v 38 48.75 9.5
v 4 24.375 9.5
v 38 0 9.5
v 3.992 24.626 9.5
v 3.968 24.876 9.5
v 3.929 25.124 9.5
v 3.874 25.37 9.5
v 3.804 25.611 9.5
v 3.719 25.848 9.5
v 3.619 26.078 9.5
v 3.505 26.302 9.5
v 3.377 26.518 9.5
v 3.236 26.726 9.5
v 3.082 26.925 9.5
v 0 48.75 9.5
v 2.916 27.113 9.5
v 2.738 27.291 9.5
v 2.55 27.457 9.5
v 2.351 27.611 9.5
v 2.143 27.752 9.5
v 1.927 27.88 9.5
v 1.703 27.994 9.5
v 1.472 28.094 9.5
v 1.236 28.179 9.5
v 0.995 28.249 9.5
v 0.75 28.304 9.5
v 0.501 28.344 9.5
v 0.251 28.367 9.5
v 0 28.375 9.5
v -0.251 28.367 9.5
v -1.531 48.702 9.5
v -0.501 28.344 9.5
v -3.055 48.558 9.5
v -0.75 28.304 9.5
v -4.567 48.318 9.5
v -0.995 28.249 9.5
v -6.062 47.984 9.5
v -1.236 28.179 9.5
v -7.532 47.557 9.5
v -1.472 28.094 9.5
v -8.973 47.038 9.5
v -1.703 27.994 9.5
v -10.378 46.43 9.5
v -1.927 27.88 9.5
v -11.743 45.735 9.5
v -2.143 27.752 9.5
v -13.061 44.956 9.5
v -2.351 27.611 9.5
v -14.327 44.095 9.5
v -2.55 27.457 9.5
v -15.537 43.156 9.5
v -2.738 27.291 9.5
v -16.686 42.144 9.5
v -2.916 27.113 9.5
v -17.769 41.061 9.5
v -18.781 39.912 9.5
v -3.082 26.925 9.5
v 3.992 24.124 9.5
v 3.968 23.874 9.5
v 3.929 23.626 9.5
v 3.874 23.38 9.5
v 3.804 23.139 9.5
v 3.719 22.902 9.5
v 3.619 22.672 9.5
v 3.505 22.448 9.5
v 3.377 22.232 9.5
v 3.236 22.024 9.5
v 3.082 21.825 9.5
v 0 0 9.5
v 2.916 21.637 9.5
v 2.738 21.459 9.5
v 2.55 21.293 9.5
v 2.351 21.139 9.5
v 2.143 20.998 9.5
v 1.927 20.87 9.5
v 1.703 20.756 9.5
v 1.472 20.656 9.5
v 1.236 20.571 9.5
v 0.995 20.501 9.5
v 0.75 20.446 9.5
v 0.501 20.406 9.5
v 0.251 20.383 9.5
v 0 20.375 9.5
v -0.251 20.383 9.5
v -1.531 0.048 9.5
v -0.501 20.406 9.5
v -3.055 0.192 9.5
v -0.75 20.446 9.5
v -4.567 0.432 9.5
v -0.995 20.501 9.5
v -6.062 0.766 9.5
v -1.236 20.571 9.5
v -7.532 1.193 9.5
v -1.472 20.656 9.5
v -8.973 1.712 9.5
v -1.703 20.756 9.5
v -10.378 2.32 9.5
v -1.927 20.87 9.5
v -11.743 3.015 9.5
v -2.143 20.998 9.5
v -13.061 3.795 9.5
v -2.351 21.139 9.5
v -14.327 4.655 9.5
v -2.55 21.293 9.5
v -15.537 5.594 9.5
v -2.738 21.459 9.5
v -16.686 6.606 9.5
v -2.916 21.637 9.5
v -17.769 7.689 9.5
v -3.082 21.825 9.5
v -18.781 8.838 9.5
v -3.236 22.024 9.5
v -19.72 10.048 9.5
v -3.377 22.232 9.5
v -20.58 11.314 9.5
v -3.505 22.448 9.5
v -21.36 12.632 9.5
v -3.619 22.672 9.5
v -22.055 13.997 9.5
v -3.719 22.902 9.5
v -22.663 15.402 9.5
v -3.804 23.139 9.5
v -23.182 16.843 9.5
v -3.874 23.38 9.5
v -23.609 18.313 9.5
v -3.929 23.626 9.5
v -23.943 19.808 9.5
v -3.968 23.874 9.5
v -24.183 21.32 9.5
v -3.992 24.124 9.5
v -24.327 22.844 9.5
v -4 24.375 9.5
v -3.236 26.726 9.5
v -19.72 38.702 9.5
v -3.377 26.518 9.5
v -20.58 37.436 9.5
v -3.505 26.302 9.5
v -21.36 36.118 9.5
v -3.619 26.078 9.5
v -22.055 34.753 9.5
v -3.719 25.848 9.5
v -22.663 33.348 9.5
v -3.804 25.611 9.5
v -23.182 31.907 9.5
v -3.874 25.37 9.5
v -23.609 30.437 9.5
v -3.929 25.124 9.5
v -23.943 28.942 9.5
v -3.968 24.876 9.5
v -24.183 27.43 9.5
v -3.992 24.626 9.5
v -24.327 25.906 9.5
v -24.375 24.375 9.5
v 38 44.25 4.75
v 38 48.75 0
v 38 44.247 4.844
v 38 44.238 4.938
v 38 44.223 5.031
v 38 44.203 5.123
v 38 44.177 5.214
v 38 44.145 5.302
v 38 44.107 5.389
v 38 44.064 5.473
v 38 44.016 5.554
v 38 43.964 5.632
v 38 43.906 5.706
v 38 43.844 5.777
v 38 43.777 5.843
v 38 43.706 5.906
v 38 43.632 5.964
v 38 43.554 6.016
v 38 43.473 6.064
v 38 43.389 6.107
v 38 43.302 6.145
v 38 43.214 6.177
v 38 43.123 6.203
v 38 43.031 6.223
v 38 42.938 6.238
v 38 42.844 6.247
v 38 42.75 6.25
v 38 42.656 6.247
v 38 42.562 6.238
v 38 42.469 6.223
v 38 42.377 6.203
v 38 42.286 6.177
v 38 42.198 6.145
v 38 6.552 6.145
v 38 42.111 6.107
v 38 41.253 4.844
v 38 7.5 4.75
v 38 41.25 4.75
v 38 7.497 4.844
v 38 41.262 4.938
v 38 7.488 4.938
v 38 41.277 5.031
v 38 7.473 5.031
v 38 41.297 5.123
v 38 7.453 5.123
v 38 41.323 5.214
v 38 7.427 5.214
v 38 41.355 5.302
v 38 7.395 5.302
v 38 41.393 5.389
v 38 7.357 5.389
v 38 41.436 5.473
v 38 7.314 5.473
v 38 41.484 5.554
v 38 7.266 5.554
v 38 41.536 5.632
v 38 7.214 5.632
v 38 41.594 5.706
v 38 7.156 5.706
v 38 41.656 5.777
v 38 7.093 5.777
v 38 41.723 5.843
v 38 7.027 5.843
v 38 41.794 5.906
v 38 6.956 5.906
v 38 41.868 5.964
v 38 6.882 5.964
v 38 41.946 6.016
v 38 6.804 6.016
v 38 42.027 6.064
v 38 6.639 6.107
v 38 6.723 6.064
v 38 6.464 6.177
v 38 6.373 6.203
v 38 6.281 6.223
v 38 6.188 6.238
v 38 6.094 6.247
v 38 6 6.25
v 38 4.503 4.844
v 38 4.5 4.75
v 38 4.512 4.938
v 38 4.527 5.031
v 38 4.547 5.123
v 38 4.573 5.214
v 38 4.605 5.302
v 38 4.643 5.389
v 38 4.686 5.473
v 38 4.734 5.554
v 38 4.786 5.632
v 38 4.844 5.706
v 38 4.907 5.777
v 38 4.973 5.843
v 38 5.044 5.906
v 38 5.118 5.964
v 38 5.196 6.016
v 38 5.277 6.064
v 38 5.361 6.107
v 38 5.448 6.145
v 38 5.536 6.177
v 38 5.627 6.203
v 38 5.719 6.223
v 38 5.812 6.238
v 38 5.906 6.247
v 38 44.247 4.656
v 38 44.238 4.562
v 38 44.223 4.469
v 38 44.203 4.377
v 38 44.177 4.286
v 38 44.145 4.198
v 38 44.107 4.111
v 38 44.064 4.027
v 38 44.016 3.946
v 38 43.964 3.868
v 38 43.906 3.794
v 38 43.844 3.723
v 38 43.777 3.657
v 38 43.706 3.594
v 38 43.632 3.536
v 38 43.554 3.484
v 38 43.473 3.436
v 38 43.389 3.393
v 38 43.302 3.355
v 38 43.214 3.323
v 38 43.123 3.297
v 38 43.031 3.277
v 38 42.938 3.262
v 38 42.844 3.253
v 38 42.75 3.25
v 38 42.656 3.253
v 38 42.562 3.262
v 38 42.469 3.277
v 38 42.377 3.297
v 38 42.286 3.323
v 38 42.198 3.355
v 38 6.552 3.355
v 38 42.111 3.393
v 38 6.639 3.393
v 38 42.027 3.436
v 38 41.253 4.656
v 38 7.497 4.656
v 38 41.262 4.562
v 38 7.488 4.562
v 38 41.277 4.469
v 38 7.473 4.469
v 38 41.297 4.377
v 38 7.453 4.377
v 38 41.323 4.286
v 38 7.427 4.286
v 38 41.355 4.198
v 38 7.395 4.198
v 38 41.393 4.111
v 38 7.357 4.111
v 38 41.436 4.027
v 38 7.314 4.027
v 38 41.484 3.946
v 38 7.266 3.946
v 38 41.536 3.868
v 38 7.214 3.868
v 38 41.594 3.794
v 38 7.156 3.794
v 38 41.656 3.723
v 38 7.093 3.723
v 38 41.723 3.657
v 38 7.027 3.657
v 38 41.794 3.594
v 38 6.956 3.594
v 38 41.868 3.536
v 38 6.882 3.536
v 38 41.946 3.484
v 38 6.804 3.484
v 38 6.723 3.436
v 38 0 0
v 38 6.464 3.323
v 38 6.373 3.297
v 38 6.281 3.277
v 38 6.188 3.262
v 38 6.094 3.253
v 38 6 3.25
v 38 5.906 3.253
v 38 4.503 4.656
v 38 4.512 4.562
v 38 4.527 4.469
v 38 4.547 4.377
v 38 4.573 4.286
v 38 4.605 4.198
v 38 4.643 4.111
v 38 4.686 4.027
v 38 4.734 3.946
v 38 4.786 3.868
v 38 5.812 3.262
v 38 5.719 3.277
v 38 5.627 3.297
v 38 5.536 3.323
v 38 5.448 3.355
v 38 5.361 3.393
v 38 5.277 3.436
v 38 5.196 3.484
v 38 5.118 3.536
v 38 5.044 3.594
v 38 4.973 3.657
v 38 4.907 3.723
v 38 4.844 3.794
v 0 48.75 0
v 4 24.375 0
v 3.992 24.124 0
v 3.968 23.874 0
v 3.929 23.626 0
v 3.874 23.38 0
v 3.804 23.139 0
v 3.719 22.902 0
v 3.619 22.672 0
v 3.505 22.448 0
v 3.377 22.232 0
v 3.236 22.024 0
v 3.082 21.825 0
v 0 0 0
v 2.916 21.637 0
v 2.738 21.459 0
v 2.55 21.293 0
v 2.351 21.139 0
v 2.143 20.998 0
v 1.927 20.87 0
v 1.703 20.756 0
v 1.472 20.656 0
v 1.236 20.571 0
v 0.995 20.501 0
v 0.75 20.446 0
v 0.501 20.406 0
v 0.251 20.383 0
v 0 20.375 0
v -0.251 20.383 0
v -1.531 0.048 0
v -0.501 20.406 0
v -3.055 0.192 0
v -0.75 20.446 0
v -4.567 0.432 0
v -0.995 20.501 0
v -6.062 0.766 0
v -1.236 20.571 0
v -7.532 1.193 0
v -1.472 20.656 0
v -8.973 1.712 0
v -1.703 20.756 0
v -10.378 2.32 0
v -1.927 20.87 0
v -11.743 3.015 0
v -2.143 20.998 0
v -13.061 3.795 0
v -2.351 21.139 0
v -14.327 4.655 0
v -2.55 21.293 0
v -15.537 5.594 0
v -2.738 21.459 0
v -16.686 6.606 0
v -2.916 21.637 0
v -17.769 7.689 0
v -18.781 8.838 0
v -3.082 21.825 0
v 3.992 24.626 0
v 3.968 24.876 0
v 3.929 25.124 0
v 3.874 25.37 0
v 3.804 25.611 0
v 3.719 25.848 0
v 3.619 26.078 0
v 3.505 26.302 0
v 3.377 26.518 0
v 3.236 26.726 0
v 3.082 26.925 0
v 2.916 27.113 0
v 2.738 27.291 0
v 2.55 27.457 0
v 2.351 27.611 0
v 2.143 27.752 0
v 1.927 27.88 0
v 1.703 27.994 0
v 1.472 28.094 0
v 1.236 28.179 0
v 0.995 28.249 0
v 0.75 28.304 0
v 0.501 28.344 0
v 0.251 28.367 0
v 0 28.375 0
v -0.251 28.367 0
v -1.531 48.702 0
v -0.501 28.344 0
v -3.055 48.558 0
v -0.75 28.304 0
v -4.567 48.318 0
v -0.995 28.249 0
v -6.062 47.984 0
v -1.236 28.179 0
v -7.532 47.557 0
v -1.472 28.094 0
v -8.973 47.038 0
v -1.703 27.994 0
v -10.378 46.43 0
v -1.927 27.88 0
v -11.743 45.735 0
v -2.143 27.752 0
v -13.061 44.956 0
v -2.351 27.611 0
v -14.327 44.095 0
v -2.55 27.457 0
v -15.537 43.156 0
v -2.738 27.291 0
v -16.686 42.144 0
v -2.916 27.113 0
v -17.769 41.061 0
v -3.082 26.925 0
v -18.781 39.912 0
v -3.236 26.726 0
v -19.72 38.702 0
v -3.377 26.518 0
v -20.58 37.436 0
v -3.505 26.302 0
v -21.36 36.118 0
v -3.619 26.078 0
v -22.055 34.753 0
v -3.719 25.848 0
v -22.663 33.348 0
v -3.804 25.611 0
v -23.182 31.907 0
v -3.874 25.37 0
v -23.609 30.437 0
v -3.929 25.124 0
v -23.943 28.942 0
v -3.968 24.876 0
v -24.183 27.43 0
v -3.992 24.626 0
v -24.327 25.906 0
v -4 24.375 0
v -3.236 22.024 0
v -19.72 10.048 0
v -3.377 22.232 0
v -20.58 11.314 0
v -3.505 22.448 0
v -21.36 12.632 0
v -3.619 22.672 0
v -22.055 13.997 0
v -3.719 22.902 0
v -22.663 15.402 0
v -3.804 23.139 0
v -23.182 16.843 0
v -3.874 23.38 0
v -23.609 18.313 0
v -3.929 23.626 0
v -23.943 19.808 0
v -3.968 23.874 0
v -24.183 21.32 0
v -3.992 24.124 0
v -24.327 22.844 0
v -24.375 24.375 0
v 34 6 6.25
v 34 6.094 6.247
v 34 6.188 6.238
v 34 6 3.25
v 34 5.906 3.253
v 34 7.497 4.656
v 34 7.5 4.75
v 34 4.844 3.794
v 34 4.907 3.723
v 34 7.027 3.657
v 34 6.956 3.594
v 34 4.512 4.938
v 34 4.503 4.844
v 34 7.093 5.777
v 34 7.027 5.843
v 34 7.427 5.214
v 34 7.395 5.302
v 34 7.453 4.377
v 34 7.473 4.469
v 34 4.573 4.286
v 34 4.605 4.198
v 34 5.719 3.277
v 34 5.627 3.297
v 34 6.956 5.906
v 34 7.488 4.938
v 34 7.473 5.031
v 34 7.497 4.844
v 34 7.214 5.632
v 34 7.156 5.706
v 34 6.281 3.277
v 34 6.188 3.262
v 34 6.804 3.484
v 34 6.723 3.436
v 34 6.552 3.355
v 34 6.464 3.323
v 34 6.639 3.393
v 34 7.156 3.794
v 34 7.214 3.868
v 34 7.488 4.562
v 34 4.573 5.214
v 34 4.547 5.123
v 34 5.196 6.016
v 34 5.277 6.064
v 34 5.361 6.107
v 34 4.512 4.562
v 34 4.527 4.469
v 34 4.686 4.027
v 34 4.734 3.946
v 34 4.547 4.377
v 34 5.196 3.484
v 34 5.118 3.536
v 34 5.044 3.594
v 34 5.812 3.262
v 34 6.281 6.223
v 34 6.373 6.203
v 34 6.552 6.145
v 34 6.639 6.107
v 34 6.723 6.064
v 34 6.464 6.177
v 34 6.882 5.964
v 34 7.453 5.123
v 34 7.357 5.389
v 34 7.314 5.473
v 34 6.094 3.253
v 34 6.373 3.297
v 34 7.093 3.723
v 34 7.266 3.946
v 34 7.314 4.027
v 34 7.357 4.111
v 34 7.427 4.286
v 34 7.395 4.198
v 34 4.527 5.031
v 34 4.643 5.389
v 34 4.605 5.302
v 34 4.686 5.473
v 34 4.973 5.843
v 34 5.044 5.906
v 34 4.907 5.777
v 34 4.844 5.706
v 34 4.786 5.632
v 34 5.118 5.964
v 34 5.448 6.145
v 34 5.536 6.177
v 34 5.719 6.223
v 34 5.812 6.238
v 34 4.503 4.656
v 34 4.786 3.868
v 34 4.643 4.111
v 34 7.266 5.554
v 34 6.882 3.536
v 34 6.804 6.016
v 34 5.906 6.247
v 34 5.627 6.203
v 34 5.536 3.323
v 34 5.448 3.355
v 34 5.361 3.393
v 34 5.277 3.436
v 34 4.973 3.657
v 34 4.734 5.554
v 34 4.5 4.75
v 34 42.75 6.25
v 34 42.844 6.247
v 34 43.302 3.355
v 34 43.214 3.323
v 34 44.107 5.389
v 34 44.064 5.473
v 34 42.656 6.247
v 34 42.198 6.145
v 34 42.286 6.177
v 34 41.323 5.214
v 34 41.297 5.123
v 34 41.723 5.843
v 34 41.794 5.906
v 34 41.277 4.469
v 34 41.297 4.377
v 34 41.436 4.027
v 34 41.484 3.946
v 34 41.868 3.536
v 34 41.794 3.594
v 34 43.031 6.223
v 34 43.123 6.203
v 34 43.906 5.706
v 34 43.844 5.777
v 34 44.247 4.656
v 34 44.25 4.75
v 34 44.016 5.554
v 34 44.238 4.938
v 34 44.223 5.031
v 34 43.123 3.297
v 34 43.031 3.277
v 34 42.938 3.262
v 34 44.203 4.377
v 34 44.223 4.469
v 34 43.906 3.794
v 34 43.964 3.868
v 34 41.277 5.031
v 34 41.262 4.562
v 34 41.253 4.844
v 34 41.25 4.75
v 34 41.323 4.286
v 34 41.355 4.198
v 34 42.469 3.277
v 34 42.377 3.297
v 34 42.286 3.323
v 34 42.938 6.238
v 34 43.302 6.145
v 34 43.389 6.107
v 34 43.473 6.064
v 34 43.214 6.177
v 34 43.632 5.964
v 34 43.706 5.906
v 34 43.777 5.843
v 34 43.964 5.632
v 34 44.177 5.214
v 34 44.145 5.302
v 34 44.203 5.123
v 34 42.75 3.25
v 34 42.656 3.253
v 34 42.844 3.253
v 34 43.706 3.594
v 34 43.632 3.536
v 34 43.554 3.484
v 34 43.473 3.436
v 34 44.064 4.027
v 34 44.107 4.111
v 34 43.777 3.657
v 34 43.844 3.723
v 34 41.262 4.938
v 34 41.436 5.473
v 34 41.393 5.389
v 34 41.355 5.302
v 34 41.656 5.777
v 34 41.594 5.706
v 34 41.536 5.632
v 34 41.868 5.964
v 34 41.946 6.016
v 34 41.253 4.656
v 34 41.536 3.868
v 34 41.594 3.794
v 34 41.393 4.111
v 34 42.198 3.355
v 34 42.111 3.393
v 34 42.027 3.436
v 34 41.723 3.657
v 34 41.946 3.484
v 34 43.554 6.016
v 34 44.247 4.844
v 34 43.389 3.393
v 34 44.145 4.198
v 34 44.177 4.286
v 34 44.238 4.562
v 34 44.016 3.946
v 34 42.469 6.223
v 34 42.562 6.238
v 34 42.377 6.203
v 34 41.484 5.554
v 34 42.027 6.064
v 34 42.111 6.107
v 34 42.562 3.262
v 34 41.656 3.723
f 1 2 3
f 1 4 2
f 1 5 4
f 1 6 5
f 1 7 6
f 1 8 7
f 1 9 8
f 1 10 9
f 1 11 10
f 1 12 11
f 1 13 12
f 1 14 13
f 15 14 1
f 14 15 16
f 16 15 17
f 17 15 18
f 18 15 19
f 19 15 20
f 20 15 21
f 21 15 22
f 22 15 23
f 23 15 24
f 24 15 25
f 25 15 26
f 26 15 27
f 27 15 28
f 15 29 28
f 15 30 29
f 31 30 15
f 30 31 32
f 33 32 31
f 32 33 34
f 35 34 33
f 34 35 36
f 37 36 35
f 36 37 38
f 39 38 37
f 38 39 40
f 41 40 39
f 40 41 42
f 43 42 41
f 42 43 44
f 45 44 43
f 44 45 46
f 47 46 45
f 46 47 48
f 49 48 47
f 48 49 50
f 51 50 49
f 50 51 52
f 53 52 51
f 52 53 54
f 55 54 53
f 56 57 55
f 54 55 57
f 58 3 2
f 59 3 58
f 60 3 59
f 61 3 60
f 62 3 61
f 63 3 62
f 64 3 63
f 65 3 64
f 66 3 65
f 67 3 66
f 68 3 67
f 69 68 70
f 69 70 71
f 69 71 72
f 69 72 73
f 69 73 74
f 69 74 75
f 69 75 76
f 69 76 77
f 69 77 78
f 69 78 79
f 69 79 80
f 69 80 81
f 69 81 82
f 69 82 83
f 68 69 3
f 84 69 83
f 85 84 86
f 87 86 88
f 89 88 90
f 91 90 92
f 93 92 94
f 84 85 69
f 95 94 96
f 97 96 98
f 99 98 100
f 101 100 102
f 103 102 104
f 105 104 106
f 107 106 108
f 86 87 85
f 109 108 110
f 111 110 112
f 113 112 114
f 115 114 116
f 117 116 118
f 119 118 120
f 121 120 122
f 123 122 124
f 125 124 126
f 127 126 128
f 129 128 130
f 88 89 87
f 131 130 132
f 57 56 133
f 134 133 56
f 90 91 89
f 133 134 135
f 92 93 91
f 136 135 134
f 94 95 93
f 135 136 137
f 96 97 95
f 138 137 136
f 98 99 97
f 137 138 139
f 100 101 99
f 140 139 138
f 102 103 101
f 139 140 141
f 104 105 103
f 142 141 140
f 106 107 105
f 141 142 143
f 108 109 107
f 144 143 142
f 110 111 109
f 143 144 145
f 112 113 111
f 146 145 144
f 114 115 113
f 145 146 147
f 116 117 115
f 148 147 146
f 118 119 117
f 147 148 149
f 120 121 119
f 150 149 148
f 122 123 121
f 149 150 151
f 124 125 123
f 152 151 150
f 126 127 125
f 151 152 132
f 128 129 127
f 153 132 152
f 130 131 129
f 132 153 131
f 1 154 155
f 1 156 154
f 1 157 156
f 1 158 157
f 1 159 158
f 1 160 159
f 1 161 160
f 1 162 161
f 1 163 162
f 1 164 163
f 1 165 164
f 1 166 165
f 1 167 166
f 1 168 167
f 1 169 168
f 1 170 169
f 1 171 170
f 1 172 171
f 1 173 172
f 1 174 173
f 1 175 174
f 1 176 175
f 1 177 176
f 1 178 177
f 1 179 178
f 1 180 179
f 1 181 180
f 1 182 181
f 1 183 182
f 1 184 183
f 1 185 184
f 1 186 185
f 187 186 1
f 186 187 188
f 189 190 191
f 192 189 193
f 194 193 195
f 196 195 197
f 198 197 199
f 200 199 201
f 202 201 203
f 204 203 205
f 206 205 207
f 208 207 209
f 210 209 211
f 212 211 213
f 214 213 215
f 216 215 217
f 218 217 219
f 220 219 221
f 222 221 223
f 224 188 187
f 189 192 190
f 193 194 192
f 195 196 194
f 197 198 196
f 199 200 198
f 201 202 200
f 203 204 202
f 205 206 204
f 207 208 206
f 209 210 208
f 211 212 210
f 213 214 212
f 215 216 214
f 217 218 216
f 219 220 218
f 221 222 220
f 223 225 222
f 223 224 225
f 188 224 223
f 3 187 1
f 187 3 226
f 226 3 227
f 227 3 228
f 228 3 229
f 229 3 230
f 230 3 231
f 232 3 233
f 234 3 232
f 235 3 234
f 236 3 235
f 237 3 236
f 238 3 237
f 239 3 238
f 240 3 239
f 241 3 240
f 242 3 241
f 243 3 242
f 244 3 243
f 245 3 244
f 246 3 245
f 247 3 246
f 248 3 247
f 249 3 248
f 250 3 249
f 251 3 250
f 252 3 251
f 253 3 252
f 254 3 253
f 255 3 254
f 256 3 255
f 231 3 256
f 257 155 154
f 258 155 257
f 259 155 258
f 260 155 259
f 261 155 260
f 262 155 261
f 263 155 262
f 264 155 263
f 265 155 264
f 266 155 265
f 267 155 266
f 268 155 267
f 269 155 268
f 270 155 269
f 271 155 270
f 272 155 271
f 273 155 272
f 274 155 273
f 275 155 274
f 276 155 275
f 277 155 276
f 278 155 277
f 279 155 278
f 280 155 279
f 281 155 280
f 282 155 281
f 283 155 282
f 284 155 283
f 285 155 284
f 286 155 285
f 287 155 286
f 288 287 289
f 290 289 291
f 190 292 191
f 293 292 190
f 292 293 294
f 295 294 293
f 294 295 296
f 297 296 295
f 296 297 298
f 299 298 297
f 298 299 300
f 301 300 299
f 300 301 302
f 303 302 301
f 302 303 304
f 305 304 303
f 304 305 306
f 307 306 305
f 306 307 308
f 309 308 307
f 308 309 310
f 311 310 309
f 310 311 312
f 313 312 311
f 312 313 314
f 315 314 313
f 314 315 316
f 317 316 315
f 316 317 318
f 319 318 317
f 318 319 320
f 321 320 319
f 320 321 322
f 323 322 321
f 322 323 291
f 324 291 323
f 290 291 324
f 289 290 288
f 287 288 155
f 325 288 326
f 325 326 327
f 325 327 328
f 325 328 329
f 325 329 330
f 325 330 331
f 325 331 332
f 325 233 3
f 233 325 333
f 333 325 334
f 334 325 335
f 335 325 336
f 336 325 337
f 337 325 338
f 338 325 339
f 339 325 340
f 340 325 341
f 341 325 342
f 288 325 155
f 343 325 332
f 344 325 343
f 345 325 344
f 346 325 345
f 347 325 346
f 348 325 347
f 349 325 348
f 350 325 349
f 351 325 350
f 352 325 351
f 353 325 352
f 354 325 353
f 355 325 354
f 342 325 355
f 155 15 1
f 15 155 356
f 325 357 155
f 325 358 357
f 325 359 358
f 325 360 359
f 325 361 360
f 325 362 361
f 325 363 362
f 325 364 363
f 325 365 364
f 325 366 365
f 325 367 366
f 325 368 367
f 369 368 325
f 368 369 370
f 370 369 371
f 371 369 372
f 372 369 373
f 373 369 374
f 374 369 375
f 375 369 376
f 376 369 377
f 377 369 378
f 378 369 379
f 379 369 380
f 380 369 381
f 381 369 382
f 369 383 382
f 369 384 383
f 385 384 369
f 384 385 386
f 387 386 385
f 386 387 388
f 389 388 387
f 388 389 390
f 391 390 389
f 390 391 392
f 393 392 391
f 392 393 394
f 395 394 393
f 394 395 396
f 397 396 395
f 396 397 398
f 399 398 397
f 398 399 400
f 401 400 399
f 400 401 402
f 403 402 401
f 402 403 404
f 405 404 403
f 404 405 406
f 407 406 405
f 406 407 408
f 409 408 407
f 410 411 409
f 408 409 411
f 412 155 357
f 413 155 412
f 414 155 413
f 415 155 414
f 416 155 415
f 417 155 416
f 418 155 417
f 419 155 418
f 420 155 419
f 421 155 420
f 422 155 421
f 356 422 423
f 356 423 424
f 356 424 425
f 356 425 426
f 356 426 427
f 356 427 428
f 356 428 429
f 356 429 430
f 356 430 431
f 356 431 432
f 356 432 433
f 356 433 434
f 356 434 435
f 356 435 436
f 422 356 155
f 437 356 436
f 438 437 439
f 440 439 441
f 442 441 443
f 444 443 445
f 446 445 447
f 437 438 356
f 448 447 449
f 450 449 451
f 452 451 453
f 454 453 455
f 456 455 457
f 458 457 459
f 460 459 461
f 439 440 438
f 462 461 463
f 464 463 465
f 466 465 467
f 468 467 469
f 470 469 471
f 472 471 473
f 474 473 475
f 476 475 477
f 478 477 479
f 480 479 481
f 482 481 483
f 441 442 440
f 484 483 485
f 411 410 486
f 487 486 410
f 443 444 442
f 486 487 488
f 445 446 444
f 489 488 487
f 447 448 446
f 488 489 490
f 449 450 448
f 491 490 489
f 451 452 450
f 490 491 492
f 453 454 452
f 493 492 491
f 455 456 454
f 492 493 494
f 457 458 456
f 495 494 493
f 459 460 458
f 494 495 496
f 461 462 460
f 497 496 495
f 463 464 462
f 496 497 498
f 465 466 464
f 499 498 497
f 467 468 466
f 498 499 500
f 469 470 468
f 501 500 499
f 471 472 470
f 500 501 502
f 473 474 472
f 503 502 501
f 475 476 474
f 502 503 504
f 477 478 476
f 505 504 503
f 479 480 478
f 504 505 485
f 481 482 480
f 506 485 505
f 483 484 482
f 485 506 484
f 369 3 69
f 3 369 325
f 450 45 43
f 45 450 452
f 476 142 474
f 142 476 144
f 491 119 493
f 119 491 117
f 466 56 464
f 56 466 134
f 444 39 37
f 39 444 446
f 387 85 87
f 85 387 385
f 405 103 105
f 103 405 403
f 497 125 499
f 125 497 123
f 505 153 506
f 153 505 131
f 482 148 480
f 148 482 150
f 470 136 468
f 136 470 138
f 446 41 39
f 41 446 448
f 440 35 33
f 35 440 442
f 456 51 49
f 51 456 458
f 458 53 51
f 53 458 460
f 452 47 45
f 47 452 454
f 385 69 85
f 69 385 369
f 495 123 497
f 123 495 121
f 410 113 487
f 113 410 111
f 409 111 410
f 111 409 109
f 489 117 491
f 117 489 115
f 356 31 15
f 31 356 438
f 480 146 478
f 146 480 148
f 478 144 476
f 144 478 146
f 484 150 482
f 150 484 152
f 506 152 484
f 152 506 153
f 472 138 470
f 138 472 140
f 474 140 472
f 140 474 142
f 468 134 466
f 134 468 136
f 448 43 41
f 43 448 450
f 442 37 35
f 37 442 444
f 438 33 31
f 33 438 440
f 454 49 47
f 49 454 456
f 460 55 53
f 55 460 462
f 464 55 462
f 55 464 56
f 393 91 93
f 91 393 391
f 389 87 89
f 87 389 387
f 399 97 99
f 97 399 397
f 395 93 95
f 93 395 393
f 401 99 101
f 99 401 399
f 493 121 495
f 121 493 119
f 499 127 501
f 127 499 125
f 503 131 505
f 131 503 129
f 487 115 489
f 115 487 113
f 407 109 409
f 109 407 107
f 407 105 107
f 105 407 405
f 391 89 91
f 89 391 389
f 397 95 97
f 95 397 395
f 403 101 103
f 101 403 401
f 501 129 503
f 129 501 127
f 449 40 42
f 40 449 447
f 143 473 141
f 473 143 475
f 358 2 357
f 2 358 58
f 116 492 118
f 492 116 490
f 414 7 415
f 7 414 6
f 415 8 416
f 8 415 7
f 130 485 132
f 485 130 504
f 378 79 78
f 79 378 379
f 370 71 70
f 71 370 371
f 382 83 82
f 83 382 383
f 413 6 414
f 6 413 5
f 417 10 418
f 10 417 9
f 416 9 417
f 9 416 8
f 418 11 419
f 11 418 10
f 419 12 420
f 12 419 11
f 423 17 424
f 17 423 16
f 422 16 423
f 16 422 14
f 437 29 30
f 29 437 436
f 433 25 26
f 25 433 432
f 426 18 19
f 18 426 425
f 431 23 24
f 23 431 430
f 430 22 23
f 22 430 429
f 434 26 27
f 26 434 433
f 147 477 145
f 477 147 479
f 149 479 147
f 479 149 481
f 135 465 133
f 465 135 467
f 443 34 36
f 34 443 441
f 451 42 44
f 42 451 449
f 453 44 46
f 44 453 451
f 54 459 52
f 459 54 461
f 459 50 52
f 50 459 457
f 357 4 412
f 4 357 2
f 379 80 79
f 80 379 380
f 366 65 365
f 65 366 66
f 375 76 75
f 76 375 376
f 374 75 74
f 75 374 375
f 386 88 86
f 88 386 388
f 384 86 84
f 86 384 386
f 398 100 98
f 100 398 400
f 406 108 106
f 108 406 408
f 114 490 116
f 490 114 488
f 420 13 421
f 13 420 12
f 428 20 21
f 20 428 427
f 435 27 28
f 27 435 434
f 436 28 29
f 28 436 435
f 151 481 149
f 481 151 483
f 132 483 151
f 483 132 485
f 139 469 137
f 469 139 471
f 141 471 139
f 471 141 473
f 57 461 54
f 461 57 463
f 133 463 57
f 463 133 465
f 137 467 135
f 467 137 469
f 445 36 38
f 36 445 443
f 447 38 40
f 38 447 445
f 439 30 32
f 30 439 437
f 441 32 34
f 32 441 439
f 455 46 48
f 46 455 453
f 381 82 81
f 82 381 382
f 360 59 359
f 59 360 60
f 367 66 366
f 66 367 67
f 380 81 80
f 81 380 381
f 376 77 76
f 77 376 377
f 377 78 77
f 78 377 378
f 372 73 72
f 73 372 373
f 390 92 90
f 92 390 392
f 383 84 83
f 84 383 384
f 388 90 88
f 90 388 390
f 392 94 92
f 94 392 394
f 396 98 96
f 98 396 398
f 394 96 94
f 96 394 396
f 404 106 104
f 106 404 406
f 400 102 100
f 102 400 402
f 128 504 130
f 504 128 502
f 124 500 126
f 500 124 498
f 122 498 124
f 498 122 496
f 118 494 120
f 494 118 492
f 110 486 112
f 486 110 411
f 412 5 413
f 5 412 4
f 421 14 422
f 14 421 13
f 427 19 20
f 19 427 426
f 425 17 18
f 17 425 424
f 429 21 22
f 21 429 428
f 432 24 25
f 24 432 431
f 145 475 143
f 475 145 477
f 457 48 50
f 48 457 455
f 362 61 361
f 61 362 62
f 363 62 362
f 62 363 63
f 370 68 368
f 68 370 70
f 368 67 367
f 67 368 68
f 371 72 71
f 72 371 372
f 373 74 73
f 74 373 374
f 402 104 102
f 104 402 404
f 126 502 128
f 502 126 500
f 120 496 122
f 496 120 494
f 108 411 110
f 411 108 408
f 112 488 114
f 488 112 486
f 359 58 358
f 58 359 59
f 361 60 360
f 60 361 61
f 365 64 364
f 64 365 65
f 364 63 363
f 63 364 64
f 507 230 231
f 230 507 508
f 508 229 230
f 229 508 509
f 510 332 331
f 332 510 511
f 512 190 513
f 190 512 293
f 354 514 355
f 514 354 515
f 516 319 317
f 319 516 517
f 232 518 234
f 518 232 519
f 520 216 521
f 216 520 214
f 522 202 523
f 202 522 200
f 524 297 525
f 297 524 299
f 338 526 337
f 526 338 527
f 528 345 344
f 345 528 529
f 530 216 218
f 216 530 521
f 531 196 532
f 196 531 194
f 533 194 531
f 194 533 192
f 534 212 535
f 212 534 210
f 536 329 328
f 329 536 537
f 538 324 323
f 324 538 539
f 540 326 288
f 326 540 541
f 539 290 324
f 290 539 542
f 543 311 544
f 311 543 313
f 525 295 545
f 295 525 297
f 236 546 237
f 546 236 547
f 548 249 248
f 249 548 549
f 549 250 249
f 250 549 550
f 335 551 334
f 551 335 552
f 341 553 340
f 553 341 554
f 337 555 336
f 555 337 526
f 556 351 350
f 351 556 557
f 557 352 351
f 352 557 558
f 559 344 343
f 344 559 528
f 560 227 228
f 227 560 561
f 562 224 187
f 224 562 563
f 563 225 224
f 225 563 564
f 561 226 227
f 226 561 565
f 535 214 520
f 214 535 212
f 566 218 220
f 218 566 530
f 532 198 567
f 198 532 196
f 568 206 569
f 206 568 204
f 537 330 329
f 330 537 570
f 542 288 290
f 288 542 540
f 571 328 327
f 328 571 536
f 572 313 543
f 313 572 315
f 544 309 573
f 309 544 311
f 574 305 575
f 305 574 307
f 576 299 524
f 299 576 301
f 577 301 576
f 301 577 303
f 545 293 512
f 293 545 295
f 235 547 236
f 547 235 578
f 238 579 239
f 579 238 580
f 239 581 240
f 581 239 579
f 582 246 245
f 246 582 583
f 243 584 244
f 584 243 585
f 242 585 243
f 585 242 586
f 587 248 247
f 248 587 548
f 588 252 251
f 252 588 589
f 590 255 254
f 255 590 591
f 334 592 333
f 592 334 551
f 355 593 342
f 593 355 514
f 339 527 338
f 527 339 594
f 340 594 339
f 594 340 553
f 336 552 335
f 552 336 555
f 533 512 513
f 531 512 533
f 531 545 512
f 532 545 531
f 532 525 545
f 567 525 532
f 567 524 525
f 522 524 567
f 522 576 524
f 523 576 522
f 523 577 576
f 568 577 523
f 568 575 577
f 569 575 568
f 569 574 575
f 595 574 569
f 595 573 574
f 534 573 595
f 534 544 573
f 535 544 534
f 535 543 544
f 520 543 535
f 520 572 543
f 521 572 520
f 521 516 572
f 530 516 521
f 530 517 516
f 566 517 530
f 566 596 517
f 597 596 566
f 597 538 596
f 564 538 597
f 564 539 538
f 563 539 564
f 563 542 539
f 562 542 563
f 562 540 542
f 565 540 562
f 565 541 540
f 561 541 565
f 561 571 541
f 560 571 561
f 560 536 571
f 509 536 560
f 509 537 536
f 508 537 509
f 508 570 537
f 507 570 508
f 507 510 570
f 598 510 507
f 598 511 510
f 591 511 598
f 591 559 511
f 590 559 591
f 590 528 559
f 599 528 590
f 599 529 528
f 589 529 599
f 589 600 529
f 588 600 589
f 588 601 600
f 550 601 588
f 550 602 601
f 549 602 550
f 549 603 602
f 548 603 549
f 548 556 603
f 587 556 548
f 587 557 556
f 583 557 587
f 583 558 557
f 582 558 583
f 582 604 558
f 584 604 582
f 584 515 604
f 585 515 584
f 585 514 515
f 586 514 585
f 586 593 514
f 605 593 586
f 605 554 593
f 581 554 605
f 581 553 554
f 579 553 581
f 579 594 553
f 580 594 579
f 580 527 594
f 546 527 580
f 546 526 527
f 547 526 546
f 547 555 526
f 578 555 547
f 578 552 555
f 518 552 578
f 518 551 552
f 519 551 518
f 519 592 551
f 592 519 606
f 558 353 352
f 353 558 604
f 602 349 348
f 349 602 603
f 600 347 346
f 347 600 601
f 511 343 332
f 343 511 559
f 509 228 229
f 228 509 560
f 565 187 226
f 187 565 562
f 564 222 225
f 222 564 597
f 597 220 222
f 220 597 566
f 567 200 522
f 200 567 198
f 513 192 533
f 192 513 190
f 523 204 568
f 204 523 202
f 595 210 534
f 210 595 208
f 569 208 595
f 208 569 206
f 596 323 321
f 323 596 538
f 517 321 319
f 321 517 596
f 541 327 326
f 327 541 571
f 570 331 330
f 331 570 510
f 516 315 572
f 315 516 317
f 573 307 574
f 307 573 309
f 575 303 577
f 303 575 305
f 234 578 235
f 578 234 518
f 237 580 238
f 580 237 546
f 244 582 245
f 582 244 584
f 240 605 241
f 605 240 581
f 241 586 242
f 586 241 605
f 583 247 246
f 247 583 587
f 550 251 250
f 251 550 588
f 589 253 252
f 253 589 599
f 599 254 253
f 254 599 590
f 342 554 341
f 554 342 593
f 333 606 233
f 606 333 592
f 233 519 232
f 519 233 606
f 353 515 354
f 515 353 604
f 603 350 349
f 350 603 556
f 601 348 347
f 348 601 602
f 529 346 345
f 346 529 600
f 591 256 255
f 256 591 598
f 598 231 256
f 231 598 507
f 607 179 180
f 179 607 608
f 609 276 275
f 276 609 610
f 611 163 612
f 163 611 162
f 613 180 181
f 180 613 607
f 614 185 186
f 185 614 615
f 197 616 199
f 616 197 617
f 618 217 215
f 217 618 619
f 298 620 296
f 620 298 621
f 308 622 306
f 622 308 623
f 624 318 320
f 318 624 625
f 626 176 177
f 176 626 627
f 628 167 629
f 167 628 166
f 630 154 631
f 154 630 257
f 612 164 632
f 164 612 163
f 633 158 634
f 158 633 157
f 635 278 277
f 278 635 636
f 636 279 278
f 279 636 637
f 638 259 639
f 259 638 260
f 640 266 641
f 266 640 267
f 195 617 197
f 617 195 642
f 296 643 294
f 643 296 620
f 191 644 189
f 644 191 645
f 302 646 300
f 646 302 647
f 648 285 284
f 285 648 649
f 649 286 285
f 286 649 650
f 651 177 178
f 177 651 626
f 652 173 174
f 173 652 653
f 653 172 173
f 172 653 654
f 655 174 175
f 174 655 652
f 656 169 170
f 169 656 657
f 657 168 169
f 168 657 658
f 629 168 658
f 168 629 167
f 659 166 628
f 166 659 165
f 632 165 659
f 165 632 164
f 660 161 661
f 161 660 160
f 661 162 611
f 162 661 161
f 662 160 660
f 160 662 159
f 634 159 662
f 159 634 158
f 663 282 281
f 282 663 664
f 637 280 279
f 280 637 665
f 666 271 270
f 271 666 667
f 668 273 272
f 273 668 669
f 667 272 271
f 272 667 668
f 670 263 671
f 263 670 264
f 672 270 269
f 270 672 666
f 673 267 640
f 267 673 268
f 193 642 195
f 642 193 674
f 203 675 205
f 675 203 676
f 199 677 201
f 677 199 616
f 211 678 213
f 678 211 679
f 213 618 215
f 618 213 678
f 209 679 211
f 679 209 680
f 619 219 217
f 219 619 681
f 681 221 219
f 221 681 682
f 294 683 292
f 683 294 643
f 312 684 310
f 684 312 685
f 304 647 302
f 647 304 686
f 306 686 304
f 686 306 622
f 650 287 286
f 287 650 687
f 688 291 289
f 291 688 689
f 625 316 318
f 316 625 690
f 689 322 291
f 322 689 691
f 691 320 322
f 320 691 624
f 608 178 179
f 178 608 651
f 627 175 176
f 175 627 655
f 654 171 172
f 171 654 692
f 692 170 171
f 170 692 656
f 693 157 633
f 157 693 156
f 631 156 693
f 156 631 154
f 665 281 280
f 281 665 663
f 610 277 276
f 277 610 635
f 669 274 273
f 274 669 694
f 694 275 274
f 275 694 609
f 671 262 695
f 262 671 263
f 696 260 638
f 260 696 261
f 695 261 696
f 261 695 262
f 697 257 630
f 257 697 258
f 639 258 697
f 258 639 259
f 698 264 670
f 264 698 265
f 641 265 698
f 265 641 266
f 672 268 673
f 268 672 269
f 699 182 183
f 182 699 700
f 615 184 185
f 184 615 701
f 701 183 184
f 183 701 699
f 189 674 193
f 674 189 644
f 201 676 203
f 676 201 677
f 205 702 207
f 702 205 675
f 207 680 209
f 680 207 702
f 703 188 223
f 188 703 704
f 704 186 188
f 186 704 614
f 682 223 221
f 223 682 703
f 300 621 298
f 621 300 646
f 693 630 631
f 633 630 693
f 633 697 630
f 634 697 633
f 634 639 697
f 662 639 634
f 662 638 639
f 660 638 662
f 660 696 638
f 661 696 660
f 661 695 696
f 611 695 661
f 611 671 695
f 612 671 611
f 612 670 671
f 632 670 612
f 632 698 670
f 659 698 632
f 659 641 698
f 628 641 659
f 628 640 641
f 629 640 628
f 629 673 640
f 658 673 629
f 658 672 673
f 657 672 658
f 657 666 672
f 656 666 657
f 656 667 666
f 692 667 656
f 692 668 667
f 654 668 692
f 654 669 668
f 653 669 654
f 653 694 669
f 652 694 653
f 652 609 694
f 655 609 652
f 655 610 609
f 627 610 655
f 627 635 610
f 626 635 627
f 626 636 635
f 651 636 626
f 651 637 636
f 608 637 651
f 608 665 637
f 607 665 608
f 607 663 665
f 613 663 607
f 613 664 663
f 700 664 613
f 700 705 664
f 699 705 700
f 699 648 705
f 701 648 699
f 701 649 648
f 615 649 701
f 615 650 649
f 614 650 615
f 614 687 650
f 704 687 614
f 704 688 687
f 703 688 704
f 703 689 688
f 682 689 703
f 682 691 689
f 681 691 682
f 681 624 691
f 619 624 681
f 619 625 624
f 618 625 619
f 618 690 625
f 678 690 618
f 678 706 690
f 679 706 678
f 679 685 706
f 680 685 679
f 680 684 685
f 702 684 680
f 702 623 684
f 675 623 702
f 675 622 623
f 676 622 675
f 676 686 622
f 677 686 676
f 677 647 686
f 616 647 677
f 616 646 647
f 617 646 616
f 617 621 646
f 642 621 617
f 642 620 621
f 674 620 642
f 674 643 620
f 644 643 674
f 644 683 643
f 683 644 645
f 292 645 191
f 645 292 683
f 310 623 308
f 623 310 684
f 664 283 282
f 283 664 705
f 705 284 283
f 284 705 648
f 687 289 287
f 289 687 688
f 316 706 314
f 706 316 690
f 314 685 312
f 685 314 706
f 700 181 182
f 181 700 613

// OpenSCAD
// file: units.scad
/*
 * Basic units.
 * 
 * Originally by Hans Häggström, 2010.
 * Dual licenced under Creative Commons Attribution-Share Alike 3.0 and LGPL2 or later
 */

// Default unit of measurement is the millimetre
nm = 0.000001 * mm; // nanometre
µm = 0.001 * mm; // micrometre
um = µm; // micrometre (alternate)
mm = 1; // millimetre
cm = 10 * mm; // centimetre
dm = 100 * mm; // decimetre
m = 1000 * mm; // metre
dam = 10000 * mm; // decametre
hm = 100000 * mm; // hectometre
km = 1000000 * mm; // kilometre

// For the purposes of compatibility with Chinese, Japanese and Korean (CJK)
// characters, Unicode has symbols for:
//    nanometre (㎚) - code U+339A
//    micrometre (㎛) - code U+339B
//    millimetre (㎜) - code U+339C
//    centimetre (㎝) - code U+339D
//    kilometre (㎞) - code U+339E
㎚ = nm;
㎛ = µm;
㎜ = mm;
㎝ = cm;
㎞ = km;

inch = 25.4 * mm;

X = [1, 0, 0];
Y = [0, 1, 0];
Z = [0, 0, 1];

M3 = 3*mm;
M4 = 4*mm;
M5 = 5*mm;
M6 = 6*mm;
M8 = 8*mm;


// When a small distance is needed to overlap shapes for boolean cutting, etc.
epsilon = 0.01*mm;
OS = epsilon;  // Over size
// file: ../MCAD/units.scad
/*
 * Basic units.
 * 
 * Originally by Hans Häggström, 2010.
 * Dual licenced under Creative Commons Attribution-Share Alike 3.0 and LGPL2 or later
 */

// Default unit of measurement is the millimetre
nm = 0.000001 * mm; // nanometre
µm = 0.001 * mm; // micrometre
um = µm; // micrometre (alternate)
mm = 1; // millimetre
cm = 10 * mm; // centimetre
dm = 100 * mm; // decimetre
m = 1000 * mm; // metre
dam = 10000 * mm; // decametre
hm = 100000 * mm; // hectometre
km = 1000000 * mm; // kilometre

// For the purposes of compatibility with Chinese, Japanese and Korean (CJK)
// characters, Unicode has symbols for:
//    nanometre (㎚) - code U+339A
//    micrometre (㎛) - code U+339B
//    millimetre (㎜) - code U+339C
//    centimetre (㎝) - code U+339D
//    kilometre (㎞) - code U+339E
㎚ = nm;
㎛ = µm;
㎜ = mm;
㎝ = cm;
㎞ = km;

inch = 25.4 * mm;

X = [1, 0, 0];
Y = [0, 1, 0];
Z = [0, 0, 1];

M3 = 3*mm;
M4 = 4*mm;
M5 = 5*mm;
M6 = 6*mm;
M8 = 8*mm;


// When a small distance is needed to overlap shapes for boolean cutting, etc.
epsilon = 0.01*mm;
OS = epsilon;  // Over size
// file: shapes.scad
/*
 *  OpenSCAD Shapes Library (www.openscad.org)
 *  Copyright (C) 2009  Catarina Mota
 *  Copyright (C) 2010  Elmo Mäntynen
 *
 *  License: LGPL 2.1 or later
*/

include <units.scad>

/*
2D Shapes
ngon(sides, radius, center=false);

3D Shapes
box(width, height, depth);
roundedBox(width, height, depth, radius);
cone(height, radius);
ellipticalCylinder(width, height, depth);
ellipsoid(width, height);
tube(height, radius, wall, center = false);
tube2(height, ID, OD, center = false);
ovalTube(width, height, depth, wall, center = false);
hexagon(height, depth);
octagon(height, depth);
dodecagon(height, depth);
hexagram(height, depth);

rightTriangle(adjacent, opposite, depth);
equiTriangle(side, depth);
12ptStar(height, depth);
*/

//----------------------

echo_deprecated_shapes_library();

module echo_deprecated_shapes_library() {
     echo("<font color='red'>
           DEPRECATED: 'shapes' library is now deprecated
           please use 'regular_shapes' instead</font>");
}

// size is a vector [w, h, d]
module box(width, height, depth) {
  echo_deprecated_shapes_library();
  cube([width, height, depth], true);
}

// size is a vector [w, h, d]
module roundedBox(width, height, depth, radius) {
  echo_deprecated_shapes_library();
  size=[width, height, depth];
  cube(size - [2*radius,0,0], true);
  cube(size - [0,2*radius,0], true);
  for (x = [radius-size[0]/2, -radius+size[0]/2],
       y = [radius-size[1]/2, -radius+size[1]/2]) {
    translate([x,y,0]) cylinder(r=radius, h=size[2], center=true);
  }
}

module cone(height, radius, center = false) {
  echo_deprecated_shapes_library();
  cylinder(height, radius, 0, center);
}

module ellipticalCylinder(w,h, height, center = false) {
  echo_deprecated_shapes_library();
  scale([1, h/w, 1]) cylinder(h=height, r=w, center=center);
}

module ellipsoid(w, h, center = false) {
  echo_deprecated_shapes_library();
  scale([1, h/w, 1]) sphere(r=w/2, center=center);
}

// wall is wall thickness
module tube(height, radius, wall, center = false) {
  echo_deprecated_shapes_library();
  linear_extrude (height = height, center = center) {
    difference() {
      circle(r = radius);
      circle(r = radius - wall);
    }
  }
  difference() {
    cylinder(h=height, r=radius, center=center);
    translate([0,0,-epsilon])
      cylinder(h=height+2*epsilon, r=radius-wall, center=center);
  }
}

module tube2(height, ID, OD, center = false) {
  tube(height = height, center = center, radius = OD / 2, wall = (OD - ID)/2);
}

// wall is wall thickness
module ovalTube(height, rx, ry, wall, center = false) {
  echo_deprecated_shapes_library();
  difference() {
    scale([1, ry/rx, 1]) cylinder(h=height, r=rx, center=center);
    scale([(rx-wall)/rx, (ry-wall)/rx, 1]) cylinder(h=height, r=rx, center=center);
  }
}

// size is the XY plane size, height in Z
module hexagon(size, height) {
  echo_deprecated_shapes_library();
  boxWidth = size/1.75;
  for (r = [-60, 0, 60])
    rotate([0,0,r])
      cube([boxWidth, size, height], true);
}

// size is the XY plane size, height in Z
module octagon(size, height) {
  echo_deprecated_shapes_library();
  intersection() {
    cube([size, size, height], true);
    rotate([0,0,45])
      cube([size, size, height], true);
  }
}

// size is the XY plane size, height in Z
module dodecagon(size, height) {
  echo_deprecated_shapes_library();
  intersection() {
    hexagon(size, height);
    rotate([0,0,90]) hexagon(size, height);
  }
}

// size is the XY plane size, height in Z
module hexagram(size, height) {
  echo_deprecated_shapes_library();
  boxWidth=size/1.75;
  for (v = [[0,1],[0,-1],[1,-1]]) {
    intersection() {
      rotate([0,0,60*v[0]]) cube([size, boxWidth, height], true);
      rotate([0,0,60*v[1]]) cube([size, boxWidth, height], true);
    }
  }
}

module rightTriangle(adjacent, opposite, height) {
  echo_deprecated_shapes_library();
  difference() {
    translate([-adjacent/2,opposite/2,0])
      cube([adjacent, opposite, height], true);
    translate([-adjacent,0,0]) {
      rotate([0,0,atan(opposite/adjacent)])
        dislocateBox(adjacent*2, opposite, height+2);
    }
  }
}

module equiTriangle(side, height) {
  echo_deprecated_shapes_library();
  difference() {
    translate([-side/2,side/2,0]) cube([side, side, height], true);
    rotate([0,0,30]) dislocateBox(side*2, side, height);
    translate([-side,0,0]) {
      rotate([0,0,60]) dislocateBox(side*2, side, height);
    }
  }
}

module 12ptStar(size, height) {
  echo_deprecated_shapes_library();
  starNum = 3;
  starAngle = 90/starNum;
  for (s = [1:starNum]) {
    rotate([0, 0, s*starAngle]) cube([size, size, height], true);
  }
}

//-----------------------
//MOVES THE ROTATION AXIS OF A BOX FROM ITS CENTER TO THE BOTTOM LEFT CORNER
module dislocateBox(w, h, d) {
  translate([0,0,-d/2]) cube([w,h,d]);
}
// file: MG995_servos.scad
/* 
 * Project Name: Creepy Robot Head - MG995 Servos
 * Author: Kamikaze Joe
 * 
 * Description:
 * 
 * Consolidating servo related modules into a library for later re-use.
 * Pre-populated with measurments from MG995 servo.
 * 
 */

/* *** TODO LIST ***
 * 
 * Tabs to spaces
 * 
 */ 

/* ***** Cheats *****

cube([x,y,z]);
translate([x,y,z]);
rotate([x_deg,y_deg,z_deg]);
cylinder(h=x,d=y);

translate([0,0,0])
    rotate([0,0,0])
        function();

vector = [ // aka: A matrix or array.
[0, 0, 0],          // vector[0][0,1,2]
[0, 0, 0],     		// vector[1]
[0, 0, 0],			// vector[2]
[0, 0, 0]      		// vector[3]
];
        

 */

// *** INCLUDE/USE LIBRARIES *** //
use <shapes.scad>;
use <fillets.scad>;
use <kamikaze_shapes.scad>;

// *** VARIABLES *** //


/* Dimensions for MG995 Servo
    *Most values from datasheet
 
        ~6.75     ~27.25
        [---][-------------]
            6.0
            ||
~6.0 >  |------------------|      ---
~3.0 >-------------------------    |
        |                  | ^ 7.0 |
        |                  |       |
20.0 >  | < 28.00          |       38 Height
        |                  |       |
4.0 >===|                  |       |
4.0 >   |__________________|      ---

        |------ 40.0 ------| 
		Width

     --------------------------   ---
     |  |                  |  |    |
     |  |   O              |  |    20.0 Depth
     |  |                  |  |    |
     --------------------------   ---

*/

screw_diameter = 0;
screw_head_diameter = 0;

servo_height      = 38;
servo_width       = 40;
servo_depth       = 20;

servo_sub_height  = 28;

servo_overhang    = 7;

// Breakdown of servo width.
// Front to Axis, Axis Diameter, Axis to Rear.
servo_top = [ 6.75, 6.0, 27.25 ];

// Breakdown of the servo height.
// Bottom to cable,  
// Calbe width,
// Cable to Overhange,  
// Overhange width, 
// Overhange to Top.
servo_side = [ 4.0, 4.0, 20.0, 3.0, 6.0 ];

print_gap = 2;

servo_dimension = [ servo_height,
                    servo_width,
                    servo_depth ];

servo_cavity = [ servo_dimension[1] + print_gap,   // Width
                 servo_dimension[2] + print_gap, // Depth
                 servo_sub_height + print_gap ];
                      
servo_recess = [ servo_width + (servo_overhang * 2) + print_gap,
                 servo_depth + print_gap,
		 servo_height - servo_sub_height]; 

standard_fn = 20;


// *** MODULES AND FUNCTIONS *** //

// Dummy servo block for comparison during development.
module dummy_servo(servo_dimension) {
    
    color("lightblue")
        cube(servo_dimension);
        
}



// Size of the cavity that servos will fit in.
module servo_cutout() {
    
    cube(servo_cavity);
    
}

// Size of additional cavity to allow servo to fit in flush...ish.
module servo_recess_cutout() {
  
  translate([0,0,0])
    rotate([0,0,0])
      cube(servo_recess);
  
}

// Build_it function just for testing out each module
// during development.
module build_it() {
	
}

// *** MAIN ***  //
build_it();
// file: ../MCAD/shapes.scad
/*
 *  OpenSCAD Shapes Library (www.openscad.org)
 *  Copyright (C) 2009  Catarina Mota
 *  Copyright (C) 2010  Elmo Mäntynen
 *
 *  License: LGPL 2.1 or later
*/

include <units.scad>

/*
2D Shapes
ngon(sides, radius, center=false);

3D Shapes
box(width, height, depth);
roundedBox(width, height, depth, radius);
cone(height, radius);
ellipticalCylinder(width, height, depth);
ellipsoid(width, height);
tube(height, radius, wall, center = false);
tube2(height, ID, OD, center = false);
ovalTube(width, height, depth, wall, center = false);
hexagon(height, depth);
octagon(height, depth);
dodecagon(height, depth);
hexagram(height, depth);

rightTriangle(adjacent, opposite, depth);
equiTriangle(side, depth);
12ptStar(height, depth);
*/

//----------------------

echo_deprecated_shapes_library();

module echo_deprecated_shapes_library() {
     echo("<font color='red'>
           DEPRECATED: 'shapes' library is now deprecated
           please use 'regular_shapes' instead</font>");
}

// size is a vector [w, h, d]
module box(width, height, depth) {
  echo_deprecated_shapes_library();
  cube([width, height, depth], true);
}

// size is a vector [w, h, d]
module roundedBox(width, height, depth, radius) {
  echo_deprecated_shapes_library();
  size=[width, height, depth];
  cube(size - [2*radius,0,0], true);
  cube(size - [0,2*radius,0], true);
  for (x = [radius-size[0]/2, -radius+size[0]/2],
       y = [radius-size[1]/2, -radius+size[1]/2]) {
    translate([x,y,0]) cylinder(r=radius, h=size[2], center=true);
  }
}

module cone(height, radius, center = false) {
  echo_deprecated_shapes_library();
  cylinder(height, radius, 0, center);
}

module ellipticalCylinder(w,h, height, center = false) {
  echo_deprecated_shapes_library();
  scale([1, h/w, 1]) cylinder(h=height, r=w, center=center);
}

module ellipsoid(w, h, center = false) {
  echo_deprecated_shapes_library();
  scale([1, h/w, 1]) sphere(r=w/2, center=center);
}

// wall is wall thickness
module tube(height, radius, wall, center = false) {
  echo_deprecated_shapes_library();
  linear_extrude (height = height, center = center) {
    difference() {
      circle(r = radius);
      circle(r = radius - wall);
    }
  }
  difference() {
    cylinder(h=height, r=radius, center=center);
    translate([0,0,-epsilon])
      cylinder(h=height+2*epsilon, r=radius-wall, center=center);
  }
}

module tube2(height, ID, OD, center = false) {
  tube(height = height, center = center, radius = OD / 2, wall = (OD - ID)/2);
}

// wall is wall thickness
module ovalTube(height, rx, ry, wall, center = false) {
  echo_deprecated_shapes_library();
  difference() {
    scale([1, ry/rx, 1]) cylinder(h=height, r=rx, center=center);
    scale([(rx-wall)/rx, (ry-wall)/rx, 1]) cylinder(h=height, r=rx, center=center);
  }
}

// size is the XY plane size, height in Z
module hexagon(size, height) {
  echo_deprecated_shapes_library();
  boxWidth = size/1.75;
  for (r = [-60, 0, 60])
    rotate([0,0,r])
      cube([boxWidth, size, height], true);
}

// size is the XY plane size, height in Z
module octagon(size, height) {
  echo_deprecated_shapes_library();
  intersection() {
    cube([size, size, height], true);
    rotate([0,0,45])
      cube([size, size, height], true);
  }
}

// size is the XY plane size, height in Z
module dodecagon(size, height) {
  echo_deprecated_shapes_library();
  intersection() {
    hexagon(size, height);
    rotate([0,0,90]) hexagon(size, height);
  }
}

// size is the XY plane size, height in Z
module hexagram(size, height) {
  echo_deprecated_shapes_library();
  boxWidth=size/1.75;
  for (v = [[0,1],[0,-1],[1,-1]]) {
    intersection() {
      rotate([0,0,60*v[0]]) cube([size, boxWidth, height], true);
      rotate([0,0,60*v[1]]) cube([size, boxWidth, height], true);
    }
  }
}

module rightTriangle(adjacent, opposite, height) {
  echo_deprecated_shapes_library();
  difference() {
    translate([-adjacent/2,opposite/2,0])
      cube([adjacent, opposite, height], true);
    translate([-adjacent,0,0]) {
      rotate([0,0,atan(opposite/adjacent)])
        dislocateBox(adjacent*2, opposite, height+2);
    }
  }
}

module equiTriangle(side, height) {
  echo_deprecated_shapes_library();
  difference() {
    translate([-side/2,side/2,0]) cube([side, side, height], true);
    rotate([0,0,30]) dislocateBox(side*2, side, height);
    translate([-side,0,0]) {
      rotate([0,0,60]) dislocateBox(side*2, side, height);
    }
  }
}

module 12ptStar(size, height) {
  echo_deprecated_shapes_library();
  starNum = 3;
  starAngle = 90/starNum;
  for (s = [1:starNum]) {
    rotate([0, 0, s*starAngle]) cube([size, size, height], true);
  }
}

//-----------------------
//MOVES THE ROTATION AXIS OF A BOX FROM ITS CENTER TO THE BOTTOM LEFT CORNER
module dislocateBox(w, h, d) {
  translate([0,0,-d/2]) cube([w,h,d]);
}
// file: ../MCAD/regular_shapes.scad
/*
 *  OpenSCAD Shapes Library (www.openscad.org)
 *  Copyright (C) 2010-2011  Giles Bathgate, Elmo Mäntynen
 *
 *  This program is free software; you can redistribute it and/or modify
 *  it under the terms of the GNU General Public License as published by
 *  the Free Software Foundation; either version 3 of the License,
 *  LGPL version 2.1, or (at your option) any later version of the GPL.
 *
 *  This program is distributed in the hope that it will be useful,
 *  but WITHOUT ANY WARRANTY; without even the implied warranty of
 *  MERCHANTABILITY or FITNESS FOR A PARTICULAR PURPOSE.  See the
 *  GNU General Public License for more details.
 *
 *  You should have received a copy of the GNU General Public License
 *  along with this program; if not, write to the Free Software
 *  Foundation, Inc., 51 Franklin Street, Fifth Floor, Boston, MA 02110-1301 USA
 *
*/

// 2D regular shapes

module triangle(radius)
{
  o=radius/2;		//equivalent to radius*sin(30)
  a=radius*sqrt(3)/2;	//equivalent to radius*cos(30)
  polygon(points=[[-a,-o],[0,radius],[a,-o]],paths=[[0,1,2]]);
}

module reg_polygon(sides, radius) {
  echo("<font color='red'>
        DEPRECATED: function 'reg_polygon' is now deprecated
        please use 'regular_polygon' instead</font>");

     regular_polygon(sides, radius);
}

module regular_polygon(sides, radius)
{
  function dia(r) = sqrt(pow(r*2,2)/2);  //sqrt((r*2^2)/2) if only we had an exponention op
  if(sides<2) square([radius,0]);
  if(sides==3) triangle(radius);
  if(sides==4) square([dia(radius),dia(radius)],center=true);
  if(sides>4) {
    angles=[ for (i = [0:sides-1]) i*(360/sides) ];
    coords=[ for (th=angles) [radius*cos(th), radius*sin(th)] ];
    polygon(coords);
  }
}

module pentagon(radius)
{
  regular_polygon(5,radius);
}

module hexagon(radius, diameter, across_flats)
{
  r = across_flats ? across_flats/2/cos(30) : diameter ? diameter/2 : radius;
  regular_polygon(6,r);
}

module heptagon(radius)
{
  regular_polygon(7,radius);
}

module octagon(radius)
{
  regular_polygon(8,radius);
}

module nonagon(radius)
{
  regular_polygon(9,radius);
}

module decagon(radius)
{
  regular_polygon(10,radius);
}

module hendecagon(radius)
{
  regular_polygon(11,radius);
}

module dodecagon(radius)
{
  regular_polygon(12,radius);
}

module ring(inside_diameter, thickness){
  difference(){
    circle(r=(inside_diameter+thickness*2)/2);
    circle(r=inside_diameter/2);
  }
}

module ellipse(width, height) {
  scale([1, height/width, 1]) circle(r=width/2);
}

// The ratio of length and width is about 1.39 for a real egg
module egg_outline(width, length){
    translate([0, width/2, 0]) union(){
        rotate([0, 0, 180]) difference(){
            ellipse(width, 2*length-width);
            translate([-length/2, 0, 0]) square(length);
        }
        circle(r=width/2);
    }
}

//3D regular shapes

module cone(height, radius, center = false)
{
  cylinder(height, radius, 0, center);
}

module oval_prism(height, rx, ry, center = false)
{
  scale([1, rx/ry, 1]) cylinder(h=height, r=ry, center=center);
}

module oval_tube(height, rx, ry, wall, center = false)
{
  difference() {
    scale([1, ry/rx, 1]) cylinder(h=height, r=rx, center=center);
    translate([0,0,-height/2]) scale([(rx-wall)/rx, (ry-wall)/rx, 2]) cylinder(h=height, r=rx, center=center);
  }
}

module cylinder_tube(height, radius, wall, center = false)
{
    tubify(radius,wall)
    cylinder(h=height, r=radius, center=center);
}

//Tubifies any regular prism
module tubify(radius,wall)
{
  difference()
  {
    children(0);
    translate([0, 0, -0.1]) scale([(radius-wall)/radius, (radius-wall)/radius, 2]) children(0);
  }
}

module triangle_prism(height,radius)
{
  linear_extrude(height=height) triangle(radius);
}

module triangle_tube(height,radius,wall)
{
   tubify(radius,wall) triangle_prism(height,radius);
}

module pentagon_prism(height,radius)
{
  linear_extrude(height=height) pentagon(radius);
}

module pentagon_tube(height,radius,wall)
{
 tubify(radius,wall) pentagon_prism(height,radius);
}

module hexagon_prism(height, radius, across_flats)
{
  linear_extrude(height=height)
    hexagon(radius=radius, across_flats=across_flats);
}

module hexagon_tube(height,radius,wall)
{
 tubify(radius,wall) hexagon_prism(height,radius);
}

module heptagon_prism(height,radius)
{
  linear_extrude(height=height) heptagon(radius);
}

module heptagon_tube(height,radius,wall)
{
 tubify(radius,wall) heptagon_prism(height,radius);
}

module octagon_prism(height,radius)
{
  linear_extrude(height=height) octagon(radius);
}

module octagon_tube(height,radius,wall)
{
 tubify(radius,wall) octagon_prism(height,radius);
}

module nonagon_prism(height,radius)
{
  linear_extrude(height=height) nonagon(radius);
}

module decagon_prism(height,radius)
{
  linear_extrude(height=height) decagon(radius);
}

module hendecagon_prism(height,radius)
{
  linear_extrude(height=height) hendecagon(radius);
}

module dodecagon_prism(height,radius)
{
  linear_extrude(height=height) dodecagon(radius);
}

module torus(outerRadius, innerRadius)
{
  r=(outerRadius-innerRadius)/2;
  rotate_extrude() translate([innerRadius+r,0,0]) circle(r);
}

module torus2(r1, r2)
{
  rotate_extrude() translate([r1,0,0]) circle(r2);
}

module oval_torus(inner_radius, thickness=[0, 0])
{
  rotate_extrude() translate([inner_radius+thickness[0]/2,0,0]) ellipse(width=thickness[0], height=thickness[1]);
}


module triangle_pyramid(radius)
{
  o=radius/2;		//equivalent to radius*sin(30)
  a=radius*sqrt(3)/2;	//equivalent to radius*cos(30)
  polyhedron(points=[[-a,-o,-o],[a,-o,-o],[0,radius,-o],[0,0,radius]],triangles=[[0,1,2],[1,2,3],[0,1,3],[0,2,3]]);
}

module square_pyramid(base_x, base_y,height)
{
  w=base_x/2;
  h=base_y/2;
  polyhedron(points=[[-w,-h,0],[-w,h,0],[w,h,0],[w,-h,0],[0,0,height]],triangles=[[0,3,2,1], [0,1,4], [1,2,4], [2,3,4], [3,0,4]]);
}

module egg(width, length){
    rotate_extrude()
        difference(){
            egg_outline(width, length);
            translate([-length, 0, 0]) cube(2*length, center=true);
        }
}

// Tests:

test_square_pyramid(){square_pyramid(10, 20, 30);}
// file: partial_rotate_extrude.scad
use <../MCAD/regular_shapes.scad>;
use <../MCAD/shapes.scad>;
include <../3D-PCB/3D-PCB.scad>;

partial_rotate_extrude(235, 20, 10)
cross_section(10,2);

module teardrop_flat(diameter) {
	union() {
		circle(r = diameter/2, $fn = 100, center=true);
		rotate(45) square(diameter/2);
	}
}


module cross_section(diameter, thickness) {
	difference() {
		teardrop_flat(diameter);
		teardrop_flat(diameter - thickness*2);
		translate([0,-diameter/2,0]) square([diameter*2,diameter], center=true);
	}
}

module pie_slice(radius, angle, step) {
	for(theta = [0:step:angle-step]) {
		rotate([0,0,0])
		linear_extrude(height = radius*2, center=true)
		polygon( 
			points = [
				[0,0],
				[radius * cos(theta+step) ,radius * sin(theta+step)],
				[radius*cos(theta),radius*sin(theta)]
			] 
		);
	}
}

module partial_rotate_extrude(angle, radius, convex) {
	intersection () {
		rotate_extrude(convexity=convex) translate([radius,0,0]) child(0);
		pie_slice(radius*2, angle, angle/5);
	}
}
// file: kamikaze_shapes.scad
/*
 * Project Name: Kamikaze Shapes
 * Author: Kamikaze Joe
 *
 * Description:
 *
 * Library of modules that create shapes I use frequently.
 *
 */

/* *** TODO LIST ***
 *
 * Tab to spaces
 *
 */

/* ***** Cheats *****

translate([0,0,0])
    rotate([0,0,0])
        function();


 */

// INCLUDE/USE LIBRARIES
//include <shapes.scad>;
//include <fillets.scad>;


// *** VARIABLES ***
standard_fn = 20;
print_gap = 0;

// *** MODULES AND FUNCTIONS *** //



module rounded_base_plate(plate_x, plate_y, plate_corner_r, plate_depth) {

    translate([plate_corner_r, plate_corner_r,0])
    // Recenter minkowski origin to (0,0).
        minkowski() // Remeber outer dimensions of the box are now x+2r
        {
            cube([plate_x - (2 * plate_corner_r),
                  plate_y - (2 * plate_corner_r),
                  plate_depth]);

            cylinder(r=plate_corner_r,h=plate_depth);
        }
}



// Function to create a triangluar prism shape or wedge
module wedge(triangle_height, triangle_base, length) {


    linear_extrude(height = length,
                   center = false,
                   convexity = 10,
                   twist = 0)

        polygon(
                 points=[ [0,0],
                          [0,triangle_height],
                          [triangle_base,triangle_height] ],

                 paths=[ [0,1,2] ]
               );
}


// Rounded isoceles right triangular shape.
// Intended to cut out of flat panels to save space and weight
module triangle_cut_out(triangle_height, length, corner_radius, mod_fn=$fn) {

    translate([corner_radius, corner_radius,0])
    // Recenter minkowski origin to (0,0).
    minkowski() {
        linear_extrude(height = length,
                       center = true,
                       convexity = 10,
                       twist = 0)

        polygon(
            points=[ [0,0,],
                     [triangle_height - ( 2 * corner_radius ),0],
                     [0,triangle_height - ( 2 * corner_radius )] ],

            paths=[ [0,1,2] ]
        );

        cylinder(h=length, r=corner_radius);
    }
}


// recessed_screw_cutout( rdepth, rdiam, slength, screw_diam, mod_fn );
module recessed_screw_cutout( recess_depth,
                              recess_diam,
                              screw_length,
                              screw_diam,
                              mod_fn=$fn) {

    translate([ 0, 0, screw_length ])
    cylinder( h=recess_depth, d=recess_diam, $fn=mod_fn );


    cylinder( h=screw_length, d=screw_diam, $fn=mod_fn );

}

// Taken and modified from children.scad in Examples.
module make_ring_of(radius, count, theta)
{
    for (a = [0 : count - 1]) {
        angle = a * theta / count;
        translate(radius * [sin(angle), -cos(angle), 0])
            rotate([0, 0, angle])
                children();
    }
}

// Build_it function just for testing out each module
// during development.
module build_it() {

}

// *** MAIN ***  //
// build_it();
// Nothing should be here.
// file: fillets.scad
//
// QP_OpenSCAD_lib
//
// GNU GPL v3
// quackingplums@gmail.com
//
// Fillets and radii for smoothing and strengthening edges
//

ff = 0.05;						// fudge factor to prevent barfing on coincident faces

// add this into internal corners to strengthen the joint
module fillet(length = 100, radius = 5)
{
	difference()
	{
		translate([radius / 2, radius / 2, 0])
			cube([radius, radius, length], true);
		translate([radius, radius, 0])
			cylinder(h = length + ff, r = radius, center = true);
	}
}

// subtract a radius from a straight edge to form a curved edge (use minkowski for rounding ALL edges)
module radius(length = 100, radius = 5)
{
	difference()
	{
		translate([radius / 2, radius / 2, 0])
			cube([radius + ff, radius + ff, length], true);
		translate([radius, radius, 0])
			cylinder(h = length + ff, r = radius, center = true);
	}
}
// main file
/* 
 * Project Name: Creepy Robot Head - Y-axis Pivot
 * Author: Kamikaze Joe
 * 
 * Description:
 * 
 * Generate model for part of the neck base of the Creepy Robot Head.
 * Simply calls the neck library and calls for the part.
 */



// *** INCLUDE/USE LIBRARIES *** //
//include <shapes.scad>;
include <fillets.scad>;
use <kamikaze_shapes.scad>;

// Same funcitonality will be built into OpenSCAD 2016.XX.
use <partial_rotate_extrude.scad>;

// Robot Head Libraries
include <neck.scad>;




// *** VARIABLES *** //


/*
 * Directions:
 * 
 * Enter the desired dimension for the jaw and teeth below.
 * 
 * Everything else should calculate automatically.
 * 
 */




module build_it() {

		y_axis_pivot();

}

// *** MAIN ***  //
$fn = standard_fn;
build_it();
